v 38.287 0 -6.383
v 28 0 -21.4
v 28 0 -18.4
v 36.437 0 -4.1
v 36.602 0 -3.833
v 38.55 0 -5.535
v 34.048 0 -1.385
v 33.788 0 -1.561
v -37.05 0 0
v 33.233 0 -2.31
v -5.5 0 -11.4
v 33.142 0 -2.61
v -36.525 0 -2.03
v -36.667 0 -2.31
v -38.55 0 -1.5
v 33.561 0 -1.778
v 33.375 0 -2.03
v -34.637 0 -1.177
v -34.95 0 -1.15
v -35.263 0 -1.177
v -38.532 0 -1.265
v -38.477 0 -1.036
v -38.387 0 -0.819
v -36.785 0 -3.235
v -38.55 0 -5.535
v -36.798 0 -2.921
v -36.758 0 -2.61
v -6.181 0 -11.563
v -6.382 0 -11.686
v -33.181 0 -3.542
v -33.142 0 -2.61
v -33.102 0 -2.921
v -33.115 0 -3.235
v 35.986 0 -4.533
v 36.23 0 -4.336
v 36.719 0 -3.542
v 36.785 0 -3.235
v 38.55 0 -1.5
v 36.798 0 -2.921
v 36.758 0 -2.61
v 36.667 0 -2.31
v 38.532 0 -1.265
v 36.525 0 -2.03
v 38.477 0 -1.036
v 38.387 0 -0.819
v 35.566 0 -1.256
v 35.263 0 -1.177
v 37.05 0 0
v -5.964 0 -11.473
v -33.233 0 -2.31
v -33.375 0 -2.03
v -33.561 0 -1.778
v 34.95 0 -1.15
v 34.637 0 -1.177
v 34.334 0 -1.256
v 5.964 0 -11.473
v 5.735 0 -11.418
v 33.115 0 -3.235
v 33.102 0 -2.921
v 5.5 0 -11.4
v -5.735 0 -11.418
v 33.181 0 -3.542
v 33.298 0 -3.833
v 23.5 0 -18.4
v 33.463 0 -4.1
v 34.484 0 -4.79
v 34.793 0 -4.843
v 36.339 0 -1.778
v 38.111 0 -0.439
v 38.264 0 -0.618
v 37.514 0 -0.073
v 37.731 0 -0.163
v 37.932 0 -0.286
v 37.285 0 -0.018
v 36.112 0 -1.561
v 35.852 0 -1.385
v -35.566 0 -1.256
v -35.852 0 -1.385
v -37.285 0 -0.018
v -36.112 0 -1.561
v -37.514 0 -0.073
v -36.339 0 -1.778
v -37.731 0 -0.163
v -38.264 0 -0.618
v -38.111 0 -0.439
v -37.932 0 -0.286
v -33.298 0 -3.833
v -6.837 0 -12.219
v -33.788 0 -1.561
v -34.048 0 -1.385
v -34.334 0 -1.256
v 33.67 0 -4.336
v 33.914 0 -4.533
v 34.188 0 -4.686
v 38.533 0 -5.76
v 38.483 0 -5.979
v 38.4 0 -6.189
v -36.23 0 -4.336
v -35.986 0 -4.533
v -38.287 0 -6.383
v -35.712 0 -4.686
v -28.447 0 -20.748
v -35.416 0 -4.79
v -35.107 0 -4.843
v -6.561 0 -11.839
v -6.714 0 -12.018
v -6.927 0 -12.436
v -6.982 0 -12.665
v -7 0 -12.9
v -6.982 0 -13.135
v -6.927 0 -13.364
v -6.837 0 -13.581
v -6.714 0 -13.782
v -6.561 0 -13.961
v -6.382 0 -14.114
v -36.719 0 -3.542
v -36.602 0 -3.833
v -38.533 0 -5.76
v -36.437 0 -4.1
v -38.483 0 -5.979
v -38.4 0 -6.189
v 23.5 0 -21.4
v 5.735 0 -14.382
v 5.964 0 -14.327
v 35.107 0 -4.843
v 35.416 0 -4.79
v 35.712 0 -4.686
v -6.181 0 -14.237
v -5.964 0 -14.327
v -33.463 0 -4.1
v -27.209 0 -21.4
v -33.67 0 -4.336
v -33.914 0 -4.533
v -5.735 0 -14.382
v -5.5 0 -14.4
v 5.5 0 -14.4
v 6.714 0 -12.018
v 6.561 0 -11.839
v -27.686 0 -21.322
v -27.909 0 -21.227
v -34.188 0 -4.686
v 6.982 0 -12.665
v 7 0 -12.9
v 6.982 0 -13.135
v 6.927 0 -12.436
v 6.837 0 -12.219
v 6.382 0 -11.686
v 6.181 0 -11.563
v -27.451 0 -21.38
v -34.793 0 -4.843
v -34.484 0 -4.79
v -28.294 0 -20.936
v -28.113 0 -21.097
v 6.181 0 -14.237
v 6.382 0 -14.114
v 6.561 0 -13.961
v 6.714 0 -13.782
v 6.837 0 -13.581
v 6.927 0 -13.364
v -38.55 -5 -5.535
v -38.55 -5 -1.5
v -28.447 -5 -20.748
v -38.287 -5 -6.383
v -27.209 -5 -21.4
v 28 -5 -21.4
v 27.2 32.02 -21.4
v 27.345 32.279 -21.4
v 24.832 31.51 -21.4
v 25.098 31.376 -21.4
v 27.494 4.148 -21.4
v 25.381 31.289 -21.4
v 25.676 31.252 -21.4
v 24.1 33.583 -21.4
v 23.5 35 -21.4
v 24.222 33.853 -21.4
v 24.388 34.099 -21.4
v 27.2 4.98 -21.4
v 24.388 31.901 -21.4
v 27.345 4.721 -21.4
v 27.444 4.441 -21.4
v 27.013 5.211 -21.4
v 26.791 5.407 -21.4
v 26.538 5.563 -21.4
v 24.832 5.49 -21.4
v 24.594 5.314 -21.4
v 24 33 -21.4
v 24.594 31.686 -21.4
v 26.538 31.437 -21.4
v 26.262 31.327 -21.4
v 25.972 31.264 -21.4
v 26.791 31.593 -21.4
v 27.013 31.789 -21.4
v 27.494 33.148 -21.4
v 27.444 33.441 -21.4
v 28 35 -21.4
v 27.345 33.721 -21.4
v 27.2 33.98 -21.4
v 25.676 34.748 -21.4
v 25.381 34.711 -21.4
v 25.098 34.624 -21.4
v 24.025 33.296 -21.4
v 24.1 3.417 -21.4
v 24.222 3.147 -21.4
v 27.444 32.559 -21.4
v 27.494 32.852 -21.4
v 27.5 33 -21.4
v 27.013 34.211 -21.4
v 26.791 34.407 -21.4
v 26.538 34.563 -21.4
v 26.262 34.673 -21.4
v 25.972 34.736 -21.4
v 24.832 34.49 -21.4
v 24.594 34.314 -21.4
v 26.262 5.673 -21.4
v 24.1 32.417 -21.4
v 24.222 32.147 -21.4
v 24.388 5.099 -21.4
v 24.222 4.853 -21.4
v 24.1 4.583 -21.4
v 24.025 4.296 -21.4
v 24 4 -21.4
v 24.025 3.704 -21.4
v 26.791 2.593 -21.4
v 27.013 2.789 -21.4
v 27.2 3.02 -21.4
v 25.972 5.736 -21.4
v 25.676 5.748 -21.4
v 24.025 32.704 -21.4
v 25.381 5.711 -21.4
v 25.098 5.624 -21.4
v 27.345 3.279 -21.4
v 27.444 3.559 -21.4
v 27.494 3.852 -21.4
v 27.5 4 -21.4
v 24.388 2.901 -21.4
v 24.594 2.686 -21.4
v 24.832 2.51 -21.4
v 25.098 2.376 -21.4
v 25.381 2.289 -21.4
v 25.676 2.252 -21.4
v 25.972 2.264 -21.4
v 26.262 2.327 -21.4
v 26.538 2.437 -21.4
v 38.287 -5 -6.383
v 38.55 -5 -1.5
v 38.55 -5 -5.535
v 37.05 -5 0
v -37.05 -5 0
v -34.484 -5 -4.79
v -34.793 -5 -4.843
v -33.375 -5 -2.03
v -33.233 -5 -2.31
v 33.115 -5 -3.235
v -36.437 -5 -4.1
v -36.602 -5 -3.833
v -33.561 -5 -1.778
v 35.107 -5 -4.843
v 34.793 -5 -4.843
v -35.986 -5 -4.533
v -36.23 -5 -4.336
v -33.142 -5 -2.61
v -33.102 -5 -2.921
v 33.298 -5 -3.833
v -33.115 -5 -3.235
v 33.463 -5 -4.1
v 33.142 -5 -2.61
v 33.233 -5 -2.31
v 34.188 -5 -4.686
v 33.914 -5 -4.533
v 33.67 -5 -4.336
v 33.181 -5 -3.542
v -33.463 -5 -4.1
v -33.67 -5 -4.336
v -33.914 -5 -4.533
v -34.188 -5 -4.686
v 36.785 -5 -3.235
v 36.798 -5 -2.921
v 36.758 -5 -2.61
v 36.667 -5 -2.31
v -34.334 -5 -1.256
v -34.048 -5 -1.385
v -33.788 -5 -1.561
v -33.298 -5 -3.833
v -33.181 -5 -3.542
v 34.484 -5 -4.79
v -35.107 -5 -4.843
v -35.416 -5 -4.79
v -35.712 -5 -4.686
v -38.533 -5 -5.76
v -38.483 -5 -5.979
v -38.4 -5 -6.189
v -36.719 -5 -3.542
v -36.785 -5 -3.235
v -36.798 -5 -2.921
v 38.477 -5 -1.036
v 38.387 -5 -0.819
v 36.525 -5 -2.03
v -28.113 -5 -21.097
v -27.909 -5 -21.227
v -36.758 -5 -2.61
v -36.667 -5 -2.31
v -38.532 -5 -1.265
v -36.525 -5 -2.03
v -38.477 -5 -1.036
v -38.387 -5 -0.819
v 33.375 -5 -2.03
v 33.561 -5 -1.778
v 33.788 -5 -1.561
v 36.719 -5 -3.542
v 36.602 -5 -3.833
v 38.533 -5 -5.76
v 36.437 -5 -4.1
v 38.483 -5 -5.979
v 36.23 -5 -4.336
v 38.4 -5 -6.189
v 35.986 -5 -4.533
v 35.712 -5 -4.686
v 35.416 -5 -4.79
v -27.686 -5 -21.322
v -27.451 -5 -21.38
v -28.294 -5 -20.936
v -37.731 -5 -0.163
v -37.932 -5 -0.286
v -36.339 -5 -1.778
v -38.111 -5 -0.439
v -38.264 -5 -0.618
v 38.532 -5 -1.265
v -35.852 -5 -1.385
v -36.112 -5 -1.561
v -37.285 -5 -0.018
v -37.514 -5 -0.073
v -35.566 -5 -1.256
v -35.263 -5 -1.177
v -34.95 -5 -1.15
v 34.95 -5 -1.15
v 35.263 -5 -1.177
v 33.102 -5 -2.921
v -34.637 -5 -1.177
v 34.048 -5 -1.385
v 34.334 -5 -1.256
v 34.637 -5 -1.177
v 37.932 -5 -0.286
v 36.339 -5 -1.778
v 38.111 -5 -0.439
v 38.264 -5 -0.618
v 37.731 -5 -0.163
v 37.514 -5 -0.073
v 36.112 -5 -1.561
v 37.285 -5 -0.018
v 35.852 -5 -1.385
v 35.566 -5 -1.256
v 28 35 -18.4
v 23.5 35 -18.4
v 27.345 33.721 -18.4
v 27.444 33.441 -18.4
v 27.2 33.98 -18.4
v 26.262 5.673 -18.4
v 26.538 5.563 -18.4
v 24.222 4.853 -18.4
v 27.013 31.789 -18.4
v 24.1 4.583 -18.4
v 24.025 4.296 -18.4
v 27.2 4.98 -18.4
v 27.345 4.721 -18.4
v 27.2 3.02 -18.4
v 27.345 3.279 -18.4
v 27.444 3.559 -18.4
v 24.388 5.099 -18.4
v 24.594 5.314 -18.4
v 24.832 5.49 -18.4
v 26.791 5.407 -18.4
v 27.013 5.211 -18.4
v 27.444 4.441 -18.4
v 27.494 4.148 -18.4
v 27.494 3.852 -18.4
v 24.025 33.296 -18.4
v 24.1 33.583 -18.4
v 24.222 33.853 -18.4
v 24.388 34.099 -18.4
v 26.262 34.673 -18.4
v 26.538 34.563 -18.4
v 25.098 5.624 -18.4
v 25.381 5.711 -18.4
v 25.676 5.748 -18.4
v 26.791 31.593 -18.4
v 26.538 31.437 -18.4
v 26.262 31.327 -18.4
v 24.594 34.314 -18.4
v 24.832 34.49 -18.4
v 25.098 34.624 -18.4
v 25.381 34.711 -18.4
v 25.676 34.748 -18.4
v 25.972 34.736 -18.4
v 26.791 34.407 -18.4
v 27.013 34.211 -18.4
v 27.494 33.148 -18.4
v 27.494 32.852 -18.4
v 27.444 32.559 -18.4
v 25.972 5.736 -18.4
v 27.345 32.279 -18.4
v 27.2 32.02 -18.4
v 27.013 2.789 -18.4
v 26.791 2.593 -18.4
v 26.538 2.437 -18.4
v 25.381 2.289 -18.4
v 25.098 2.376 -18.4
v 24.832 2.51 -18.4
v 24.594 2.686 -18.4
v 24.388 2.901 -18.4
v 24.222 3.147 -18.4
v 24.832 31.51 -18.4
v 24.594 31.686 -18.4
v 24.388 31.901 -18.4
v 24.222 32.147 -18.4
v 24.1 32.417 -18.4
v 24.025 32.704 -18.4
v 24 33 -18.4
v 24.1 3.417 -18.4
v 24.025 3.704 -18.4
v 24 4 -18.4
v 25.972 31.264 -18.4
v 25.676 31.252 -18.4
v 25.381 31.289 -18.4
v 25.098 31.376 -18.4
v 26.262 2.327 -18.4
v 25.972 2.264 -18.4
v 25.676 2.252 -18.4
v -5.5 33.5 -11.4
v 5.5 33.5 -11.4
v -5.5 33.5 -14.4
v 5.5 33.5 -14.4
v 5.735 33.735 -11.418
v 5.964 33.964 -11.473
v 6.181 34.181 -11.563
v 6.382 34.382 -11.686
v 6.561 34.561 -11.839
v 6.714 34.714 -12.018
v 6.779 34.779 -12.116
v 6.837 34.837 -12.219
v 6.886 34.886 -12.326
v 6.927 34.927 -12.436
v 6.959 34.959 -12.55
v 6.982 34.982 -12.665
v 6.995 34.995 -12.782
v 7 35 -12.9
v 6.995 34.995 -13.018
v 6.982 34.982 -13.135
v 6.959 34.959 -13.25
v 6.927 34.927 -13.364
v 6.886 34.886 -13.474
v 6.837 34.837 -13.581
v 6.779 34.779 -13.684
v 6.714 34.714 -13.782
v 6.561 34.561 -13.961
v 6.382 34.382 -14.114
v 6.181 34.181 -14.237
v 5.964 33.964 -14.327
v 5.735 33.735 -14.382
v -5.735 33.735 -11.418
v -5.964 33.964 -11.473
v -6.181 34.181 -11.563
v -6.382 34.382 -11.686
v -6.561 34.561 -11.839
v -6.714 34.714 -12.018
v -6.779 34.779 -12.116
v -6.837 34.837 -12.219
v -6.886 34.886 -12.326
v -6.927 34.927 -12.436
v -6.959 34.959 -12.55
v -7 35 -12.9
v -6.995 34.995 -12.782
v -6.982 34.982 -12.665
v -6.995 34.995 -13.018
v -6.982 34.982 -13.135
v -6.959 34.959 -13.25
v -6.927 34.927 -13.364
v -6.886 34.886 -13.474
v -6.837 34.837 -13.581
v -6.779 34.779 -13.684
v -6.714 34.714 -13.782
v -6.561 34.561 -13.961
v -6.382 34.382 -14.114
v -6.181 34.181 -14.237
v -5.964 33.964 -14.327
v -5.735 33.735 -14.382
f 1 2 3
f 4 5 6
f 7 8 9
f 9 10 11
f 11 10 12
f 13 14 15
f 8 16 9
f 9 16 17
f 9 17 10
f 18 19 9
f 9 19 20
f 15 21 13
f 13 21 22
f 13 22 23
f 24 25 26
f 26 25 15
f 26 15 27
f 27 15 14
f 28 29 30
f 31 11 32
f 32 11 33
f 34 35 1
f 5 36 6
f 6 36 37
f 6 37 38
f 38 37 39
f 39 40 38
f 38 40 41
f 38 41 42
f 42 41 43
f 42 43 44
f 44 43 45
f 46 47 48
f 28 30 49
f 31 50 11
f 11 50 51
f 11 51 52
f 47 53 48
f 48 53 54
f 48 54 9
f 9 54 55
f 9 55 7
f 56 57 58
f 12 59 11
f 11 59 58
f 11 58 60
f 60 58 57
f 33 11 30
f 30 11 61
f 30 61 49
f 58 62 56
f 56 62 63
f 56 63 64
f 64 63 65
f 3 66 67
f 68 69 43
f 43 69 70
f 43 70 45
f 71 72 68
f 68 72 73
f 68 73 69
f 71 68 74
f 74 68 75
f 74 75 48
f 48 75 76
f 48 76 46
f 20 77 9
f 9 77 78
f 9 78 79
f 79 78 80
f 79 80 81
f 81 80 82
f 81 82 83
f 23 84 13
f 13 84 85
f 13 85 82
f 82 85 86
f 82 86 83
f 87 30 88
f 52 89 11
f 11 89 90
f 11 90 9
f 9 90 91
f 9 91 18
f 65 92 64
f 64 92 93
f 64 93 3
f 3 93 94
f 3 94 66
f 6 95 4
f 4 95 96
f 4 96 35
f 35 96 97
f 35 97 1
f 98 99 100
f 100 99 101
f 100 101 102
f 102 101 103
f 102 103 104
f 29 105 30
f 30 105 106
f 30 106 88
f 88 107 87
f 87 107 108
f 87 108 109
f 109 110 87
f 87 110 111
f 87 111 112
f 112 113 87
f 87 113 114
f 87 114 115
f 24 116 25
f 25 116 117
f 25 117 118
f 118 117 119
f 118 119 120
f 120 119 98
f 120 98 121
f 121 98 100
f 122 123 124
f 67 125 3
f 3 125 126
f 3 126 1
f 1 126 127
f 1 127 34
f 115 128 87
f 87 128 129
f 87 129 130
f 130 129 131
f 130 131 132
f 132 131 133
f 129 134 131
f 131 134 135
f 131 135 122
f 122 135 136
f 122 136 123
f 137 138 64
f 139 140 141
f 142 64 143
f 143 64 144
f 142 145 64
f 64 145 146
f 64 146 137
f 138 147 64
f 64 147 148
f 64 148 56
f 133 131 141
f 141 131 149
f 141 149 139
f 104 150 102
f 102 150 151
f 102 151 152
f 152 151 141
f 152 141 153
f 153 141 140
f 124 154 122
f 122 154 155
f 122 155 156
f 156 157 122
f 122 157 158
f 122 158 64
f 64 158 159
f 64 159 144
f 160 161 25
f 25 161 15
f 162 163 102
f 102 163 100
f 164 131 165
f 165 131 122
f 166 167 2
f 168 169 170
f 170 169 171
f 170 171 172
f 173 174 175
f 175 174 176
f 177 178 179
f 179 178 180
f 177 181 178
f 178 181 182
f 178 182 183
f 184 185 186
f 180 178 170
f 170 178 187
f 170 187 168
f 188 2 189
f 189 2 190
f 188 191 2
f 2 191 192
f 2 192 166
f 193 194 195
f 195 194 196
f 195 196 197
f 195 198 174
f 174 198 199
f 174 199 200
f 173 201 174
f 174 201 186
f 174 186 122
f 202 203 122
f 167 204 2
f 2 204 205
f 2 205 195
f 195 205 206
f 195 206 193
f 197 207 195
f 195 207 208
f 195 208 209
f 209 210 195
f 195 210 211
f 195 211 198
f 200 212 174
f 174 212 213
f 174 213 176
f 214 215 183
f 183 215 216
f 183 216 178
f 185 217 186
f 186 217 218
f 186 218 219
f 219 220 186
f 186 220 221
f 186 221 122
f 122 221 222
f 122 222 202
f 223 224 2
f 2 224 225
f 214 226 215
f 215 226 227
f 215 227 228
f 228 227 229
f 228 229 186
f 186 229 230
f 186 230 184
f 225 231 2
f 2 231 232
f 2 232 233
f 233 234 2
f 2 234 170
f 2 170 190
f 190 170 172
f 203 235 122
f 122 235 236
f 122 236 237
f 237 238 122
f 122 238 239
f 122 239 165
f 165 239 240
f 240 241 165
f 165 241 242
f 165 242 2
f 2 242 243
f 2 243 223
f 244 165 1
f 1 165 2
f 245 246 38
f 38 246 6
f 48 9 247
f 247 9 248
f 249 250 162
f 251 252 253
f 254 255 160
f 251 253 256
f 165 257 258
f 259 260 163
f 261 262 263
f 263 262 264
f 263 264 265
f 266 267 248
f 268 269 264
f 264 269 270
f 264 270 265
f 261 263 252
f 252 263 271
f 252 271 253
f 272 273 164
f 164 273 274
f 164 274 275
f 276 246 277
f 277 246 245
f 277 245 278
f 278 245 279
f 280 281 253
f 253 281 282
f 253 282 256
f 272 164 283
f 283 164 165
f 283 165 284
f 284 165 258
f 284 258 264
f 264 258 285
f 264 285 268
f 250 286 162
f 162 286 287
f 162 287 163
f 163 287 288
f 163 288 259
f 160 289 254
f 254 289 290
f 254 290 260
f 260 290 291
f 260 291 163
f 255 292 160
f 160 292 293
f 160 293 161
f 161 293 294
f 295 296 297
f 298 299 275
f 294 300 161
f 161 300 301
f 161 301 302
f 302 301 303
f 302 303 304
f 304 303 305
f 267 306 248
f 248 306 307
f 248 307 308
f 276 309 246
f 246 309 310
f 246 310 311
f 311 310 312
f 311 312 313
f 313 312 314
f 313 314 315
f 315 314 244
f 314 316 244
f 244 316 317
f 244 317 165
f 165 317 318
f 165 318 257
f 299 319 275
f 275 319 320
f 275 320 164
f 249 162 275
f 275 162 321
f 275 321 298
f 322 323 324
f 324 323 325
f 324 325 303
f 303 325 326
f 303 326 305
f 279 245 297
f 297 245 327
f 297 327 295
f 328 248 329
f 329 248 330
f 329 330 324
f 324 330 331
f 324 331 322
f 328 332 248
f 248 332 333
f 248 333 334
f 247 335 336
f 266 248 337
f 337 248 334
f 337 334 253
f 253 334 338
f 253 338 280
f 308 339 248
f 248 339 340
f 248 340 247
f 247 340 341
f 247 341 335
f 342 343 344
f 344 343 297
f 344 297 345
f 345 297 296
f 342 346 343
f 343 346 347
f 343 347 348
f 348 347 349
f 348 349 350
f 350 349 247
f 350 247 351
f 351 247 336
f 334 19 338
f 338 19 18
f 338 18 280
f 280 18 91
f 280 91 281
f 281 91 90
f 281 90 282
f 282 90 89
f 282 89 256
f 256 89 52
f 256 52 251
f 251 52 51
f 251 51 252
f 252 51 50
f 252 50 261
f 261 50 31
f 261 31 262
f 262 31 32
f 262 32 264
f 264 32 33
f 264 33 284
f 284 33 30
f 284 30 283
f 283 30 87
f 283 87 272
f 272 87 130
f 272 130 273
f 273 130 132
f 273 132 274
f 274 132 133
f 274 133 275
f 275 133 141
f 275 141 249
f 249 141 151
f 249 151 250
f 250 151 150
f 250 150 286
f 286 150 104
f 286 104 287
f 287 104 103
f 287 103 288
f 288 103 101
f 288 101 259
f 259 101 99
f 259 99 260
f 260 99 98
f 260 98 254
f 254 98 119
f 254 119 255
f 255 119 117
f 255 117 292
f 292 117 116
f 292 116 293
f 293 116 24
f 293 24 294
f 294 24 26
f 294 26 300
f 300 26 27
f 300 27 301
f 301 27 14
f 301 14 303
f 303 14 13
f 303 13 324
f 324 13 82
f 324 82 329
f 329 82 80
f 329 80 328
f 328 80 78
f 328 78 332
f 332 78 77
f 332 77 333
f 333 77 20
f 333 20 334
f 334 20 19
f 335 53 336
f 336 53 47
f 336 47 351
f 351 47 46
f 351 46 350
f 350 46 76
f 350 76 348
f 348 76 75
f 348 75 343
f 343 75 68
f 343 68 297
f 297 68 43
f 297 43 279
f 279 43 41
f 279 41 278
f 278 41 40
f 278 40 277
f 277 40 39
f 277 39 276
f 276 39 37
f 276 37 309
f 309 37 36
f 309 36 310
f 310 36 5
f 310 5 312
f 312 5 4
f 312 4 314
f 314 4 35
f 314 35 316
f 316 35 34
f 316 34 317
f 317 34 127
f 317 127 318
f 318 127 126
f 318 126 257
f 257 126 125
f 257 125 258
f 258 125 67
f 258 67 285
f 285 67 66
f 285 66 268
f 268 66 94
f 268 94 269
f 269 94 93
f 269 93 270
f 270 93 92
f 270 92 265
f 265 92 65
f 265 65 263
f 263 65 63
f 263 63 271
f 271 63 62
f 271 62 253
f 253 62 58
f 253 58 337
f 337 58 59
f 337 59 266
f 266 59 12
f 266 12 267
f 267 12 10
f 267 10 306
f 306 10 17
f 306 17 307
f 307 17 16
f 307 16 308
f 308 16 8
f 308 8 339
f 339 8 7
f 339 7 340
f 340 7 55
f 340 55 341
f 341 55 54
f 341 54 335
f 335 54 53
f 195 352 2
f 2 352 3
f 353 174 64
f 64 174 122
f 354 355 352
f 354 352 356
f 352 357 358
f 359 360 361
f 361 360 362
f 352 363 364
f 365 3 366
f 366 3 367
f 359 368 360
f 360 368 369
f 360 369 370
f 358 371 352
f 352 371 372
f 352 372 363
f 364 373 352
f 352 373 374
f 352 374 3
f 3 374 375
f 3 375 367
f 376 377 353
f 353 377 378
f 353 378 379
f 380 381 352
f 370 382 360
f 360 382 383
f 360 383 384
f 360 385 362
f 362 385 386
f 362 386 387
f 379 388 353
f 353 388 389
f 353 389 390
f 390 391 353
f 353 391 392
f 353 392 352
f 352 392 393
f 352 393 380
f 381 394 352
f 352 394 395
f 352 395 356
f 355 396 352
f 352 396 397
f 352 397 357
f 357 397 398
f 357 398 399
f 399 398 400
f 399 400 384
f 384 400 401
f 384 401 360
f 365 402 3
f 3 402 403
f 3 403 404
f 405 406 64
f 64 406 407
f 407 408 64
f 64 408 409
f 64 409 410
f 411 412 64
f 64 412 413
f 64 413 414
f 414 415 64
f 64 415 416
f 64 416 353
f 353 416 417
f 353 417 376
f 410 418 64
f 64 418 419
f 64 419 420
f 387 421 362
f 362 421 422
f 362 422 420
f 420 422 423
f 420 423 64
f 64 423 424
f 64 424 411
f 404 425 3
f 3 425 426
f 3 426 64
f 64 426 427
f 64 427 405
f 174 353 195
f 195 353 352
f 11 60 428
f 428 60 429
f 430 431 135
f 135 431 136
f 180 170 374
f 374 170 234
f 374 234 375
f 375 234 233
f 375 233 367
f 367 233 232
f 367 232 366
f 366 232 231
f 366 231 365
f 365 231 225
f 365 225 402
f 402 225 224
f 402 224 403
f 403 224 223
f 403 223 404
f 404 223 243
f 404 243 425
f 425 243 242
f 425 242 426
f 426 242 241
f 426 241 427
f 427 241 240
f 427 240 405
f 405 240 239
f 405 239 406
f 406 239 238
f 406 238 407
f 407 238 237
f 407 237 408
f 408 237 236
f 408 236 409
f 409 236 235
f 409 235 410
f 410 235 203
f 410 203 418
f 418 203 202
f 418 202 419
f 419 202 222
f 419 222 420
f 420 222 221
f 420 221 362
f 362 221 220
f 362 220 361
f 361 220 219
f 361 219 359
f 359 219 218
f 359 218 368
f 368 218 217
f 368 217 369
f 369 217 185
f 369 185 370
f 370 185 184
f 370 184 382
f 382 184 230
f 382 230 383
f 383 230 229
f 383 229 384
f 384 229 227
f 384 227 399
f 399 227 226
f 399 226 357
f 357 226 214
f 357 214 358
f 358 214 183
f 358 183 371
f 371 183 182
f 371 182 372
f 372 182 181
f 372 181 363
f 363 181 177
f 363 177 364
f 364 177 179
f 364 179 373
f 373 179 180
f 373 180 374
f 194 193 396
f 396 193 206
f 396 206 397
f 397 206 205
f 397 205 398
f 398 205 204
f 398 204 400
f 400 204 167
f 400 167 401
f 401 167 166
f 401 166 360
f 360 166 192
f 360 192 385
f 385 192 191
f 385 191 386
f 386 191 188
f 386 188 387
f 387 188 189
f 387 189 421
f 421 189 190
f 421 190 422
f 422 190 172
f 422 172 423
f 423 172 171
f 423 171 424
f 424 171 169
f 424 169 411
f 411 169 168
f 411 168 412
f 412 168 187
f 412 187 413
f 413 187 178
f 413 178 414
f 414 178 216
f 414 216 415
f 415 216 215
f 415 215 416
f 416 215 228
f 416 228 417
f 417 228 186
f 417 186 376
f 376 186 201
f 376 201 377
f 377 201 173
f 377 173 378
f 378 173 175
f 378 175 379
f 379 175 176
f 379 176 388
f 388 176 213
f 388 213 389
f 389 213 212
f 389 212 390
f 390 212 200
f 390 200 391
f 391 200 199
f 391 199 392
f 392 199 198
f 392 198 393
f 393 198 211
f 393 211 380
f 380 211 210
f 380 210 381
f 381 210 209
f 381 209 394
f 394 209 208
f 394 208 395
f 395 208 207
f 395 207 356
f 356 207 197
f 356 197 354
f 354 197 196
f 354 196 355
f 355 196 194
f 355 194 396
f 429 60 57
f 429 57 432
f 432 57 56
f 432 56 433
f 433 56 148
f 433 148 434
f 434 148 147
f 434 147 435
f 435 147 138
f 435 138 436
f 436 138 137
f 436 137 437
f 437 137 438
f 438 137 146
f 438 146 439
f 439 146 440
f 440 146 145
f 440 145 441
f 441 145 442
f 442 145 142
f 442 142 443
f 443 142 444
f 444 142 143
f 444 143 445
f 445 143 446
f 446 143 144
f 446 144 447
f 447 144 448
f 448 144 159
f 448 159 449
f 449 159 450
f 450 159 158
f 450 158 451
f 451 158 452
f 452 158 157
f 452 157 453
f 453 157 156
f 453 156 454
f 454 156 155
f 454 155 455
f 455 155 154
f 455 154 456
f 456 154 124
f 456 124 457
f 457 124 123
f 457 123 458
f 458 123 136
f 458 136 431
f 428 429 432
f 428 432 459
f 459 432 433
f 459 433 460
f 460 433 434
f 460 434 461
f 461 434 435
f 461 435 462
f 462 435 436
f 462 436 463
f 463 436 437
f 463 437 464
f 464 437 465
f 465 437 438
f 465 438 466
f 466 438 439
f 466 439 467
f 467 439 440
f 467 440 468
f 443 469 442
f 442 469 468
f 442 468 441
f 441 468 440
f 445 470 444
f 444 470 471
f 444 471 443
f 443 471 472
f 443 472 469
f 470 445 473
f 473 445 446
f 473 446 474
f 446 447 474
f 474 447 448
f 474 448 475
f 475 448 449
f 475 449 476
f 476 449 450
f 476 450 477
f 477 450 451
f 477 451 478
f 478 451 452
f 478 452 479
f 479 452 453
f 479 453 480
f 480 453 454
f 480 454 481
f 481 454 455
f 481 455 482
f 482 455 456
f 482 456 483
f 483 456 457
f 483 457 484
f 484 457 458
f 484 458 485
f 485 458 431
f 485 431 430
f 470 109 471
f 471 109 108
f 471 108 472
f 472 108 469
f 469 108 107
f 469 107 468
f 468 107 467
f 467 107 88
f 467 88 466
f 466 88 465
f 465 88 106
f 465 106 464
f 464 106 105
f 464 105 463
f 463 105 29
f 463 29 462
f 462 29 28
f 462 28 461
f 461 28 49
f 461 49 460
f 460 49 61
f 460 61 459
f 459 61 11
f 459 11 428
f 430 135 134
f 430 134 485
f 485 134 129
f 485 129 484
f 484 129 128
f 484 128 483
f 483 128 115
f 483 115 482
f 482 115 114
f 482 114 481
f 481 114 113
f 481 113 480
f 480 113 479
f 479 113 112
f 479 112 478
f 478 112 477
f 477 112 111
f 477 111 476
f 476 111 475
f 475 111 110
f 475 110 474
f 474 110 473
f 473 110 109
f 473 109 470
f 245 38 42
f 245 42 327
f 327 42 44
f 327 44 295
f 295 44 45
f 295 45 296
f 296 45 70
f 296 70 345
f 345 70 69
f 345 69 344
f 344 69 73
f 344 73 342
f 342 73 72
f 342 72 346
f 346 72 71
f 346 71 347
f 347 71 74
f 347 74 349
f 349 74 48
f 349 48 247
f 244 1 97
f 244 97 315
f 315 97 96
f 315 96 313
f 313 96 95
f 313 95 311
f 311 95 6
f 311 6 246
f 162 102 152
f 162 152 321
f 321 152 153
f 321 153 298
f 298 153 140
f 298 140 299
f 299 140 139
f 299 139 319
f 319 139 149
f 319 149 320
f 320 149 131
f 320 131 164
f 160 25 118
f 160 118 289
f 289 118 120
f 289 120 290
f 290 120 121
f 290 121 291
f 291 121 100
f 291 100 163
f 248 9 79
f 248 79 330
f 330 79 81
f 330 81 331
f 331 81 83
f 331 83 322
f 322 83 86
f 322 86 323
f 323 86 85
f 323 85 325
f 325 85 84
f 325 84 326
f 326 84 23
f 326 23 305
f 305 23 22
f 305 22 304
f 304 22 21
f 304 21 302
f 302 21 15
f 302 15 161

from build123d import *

# Parameters (mm, degrees)
SKETCH_1_R          = 1.85
EXTRUDE_1_DEPTH     = 5
SKETCH_2_W          = 4.5
SKETCH_2_H          = 3
SKETCH_2_W_2        = 14
EXTRUDE_2_DEPTH     = 35
SKETCH_4_R          = 1.75
CUT_EXTRUDE_2_DEPTH = 35
FILLET_3_R          = 1.5
FILLET_4_R          = 1.5


with BuildPart() as part:
    # 草图1 → 凸台-拉伸1 (new body)
    with BuildSketch(Plane(origin=(0, 0, 0), x_dir=(1, 0, 0), z_dir=(0, 1, 0))):
        Polygon((-38.55, 0), (38.55, 0), (38.55, 6), (28, 21.4), (-28, 21.4), (-38.55, 6), align=None)
        with Locations(Location((-34.95, 3, 0), (0, 0, 270))):
            Circle(SKETCH_1_R, mode=Mode.SUBTRACT)
        with Locations(Location((34.95, 3, 0), (0, 0, 270))):
            Circle(SKETCH_1_R, mode=Mode.SUBTRACT)
    extrude(amount=-EXTRUDE_1_DEPTH)

    # 草图2 → 凸台-拉伸2 (add)
    with BuildSketch(Plane(origin=(0, 0, 0), x_dir=(1, 0, 0), z_dir=(0, 1, 0))):
        with Locations((25.75, 19.9)):
            Rectangle(SKETCH_2_W, SKETCH_2_H)
        with Locations((0, 12.9)):
            Rectangle(SKETCH_2_W_2, SKETCH_2_H)
    extrude(amount=EXTRUDE_2_DEPTH)

    # 草图4 → 切除-拉伸2 (cut)
    with BuildSketch(Plane.XY.offset(-21.4)):
        with Locations(Location((25.75, 33, 0), (0, 0, 180))):
            Circle(SKETCH_4_R)
        with Locations(Location((25.75, 4, 0), (0, 0, 180))):
            Circle(SKETCH_4_R)
    extrude(amount=CUT_EXTRUDE_2_DEPTH, mode=Mode.SUBTRACT)

    # 圆角3
    fillet_3_edges = [part.edges().sort_by_distance(p)[0] for p in [
        (-7, 17.5, -14.4),
        (-7, 17.5, -11.4),
        (7, 17.5, -14.4),
        (7, 17.5, -11.4),
        (0, 35, -11.4),
        (0, 35, -14.4),
    ]]
    fillet(fillet_3_edges, radius=FILLET_3_R - 0.0001)  # a hair under: the kernel refuses the full size

    # 圆角4
    fillet_4_edges = [part.edges().sort_by_distance(p)[0] for p in [
        (-38.55, -2.5, -6),
        (-28, -2.5, -21.4),
        (38.55, -2.5, -6),
        (38.55, -2.5, 0),
        (-38.55, -2.5, 0),
    ]]
    fillet(fillet_4_edges, radius=FILLET_4_R)


solid = part.part
